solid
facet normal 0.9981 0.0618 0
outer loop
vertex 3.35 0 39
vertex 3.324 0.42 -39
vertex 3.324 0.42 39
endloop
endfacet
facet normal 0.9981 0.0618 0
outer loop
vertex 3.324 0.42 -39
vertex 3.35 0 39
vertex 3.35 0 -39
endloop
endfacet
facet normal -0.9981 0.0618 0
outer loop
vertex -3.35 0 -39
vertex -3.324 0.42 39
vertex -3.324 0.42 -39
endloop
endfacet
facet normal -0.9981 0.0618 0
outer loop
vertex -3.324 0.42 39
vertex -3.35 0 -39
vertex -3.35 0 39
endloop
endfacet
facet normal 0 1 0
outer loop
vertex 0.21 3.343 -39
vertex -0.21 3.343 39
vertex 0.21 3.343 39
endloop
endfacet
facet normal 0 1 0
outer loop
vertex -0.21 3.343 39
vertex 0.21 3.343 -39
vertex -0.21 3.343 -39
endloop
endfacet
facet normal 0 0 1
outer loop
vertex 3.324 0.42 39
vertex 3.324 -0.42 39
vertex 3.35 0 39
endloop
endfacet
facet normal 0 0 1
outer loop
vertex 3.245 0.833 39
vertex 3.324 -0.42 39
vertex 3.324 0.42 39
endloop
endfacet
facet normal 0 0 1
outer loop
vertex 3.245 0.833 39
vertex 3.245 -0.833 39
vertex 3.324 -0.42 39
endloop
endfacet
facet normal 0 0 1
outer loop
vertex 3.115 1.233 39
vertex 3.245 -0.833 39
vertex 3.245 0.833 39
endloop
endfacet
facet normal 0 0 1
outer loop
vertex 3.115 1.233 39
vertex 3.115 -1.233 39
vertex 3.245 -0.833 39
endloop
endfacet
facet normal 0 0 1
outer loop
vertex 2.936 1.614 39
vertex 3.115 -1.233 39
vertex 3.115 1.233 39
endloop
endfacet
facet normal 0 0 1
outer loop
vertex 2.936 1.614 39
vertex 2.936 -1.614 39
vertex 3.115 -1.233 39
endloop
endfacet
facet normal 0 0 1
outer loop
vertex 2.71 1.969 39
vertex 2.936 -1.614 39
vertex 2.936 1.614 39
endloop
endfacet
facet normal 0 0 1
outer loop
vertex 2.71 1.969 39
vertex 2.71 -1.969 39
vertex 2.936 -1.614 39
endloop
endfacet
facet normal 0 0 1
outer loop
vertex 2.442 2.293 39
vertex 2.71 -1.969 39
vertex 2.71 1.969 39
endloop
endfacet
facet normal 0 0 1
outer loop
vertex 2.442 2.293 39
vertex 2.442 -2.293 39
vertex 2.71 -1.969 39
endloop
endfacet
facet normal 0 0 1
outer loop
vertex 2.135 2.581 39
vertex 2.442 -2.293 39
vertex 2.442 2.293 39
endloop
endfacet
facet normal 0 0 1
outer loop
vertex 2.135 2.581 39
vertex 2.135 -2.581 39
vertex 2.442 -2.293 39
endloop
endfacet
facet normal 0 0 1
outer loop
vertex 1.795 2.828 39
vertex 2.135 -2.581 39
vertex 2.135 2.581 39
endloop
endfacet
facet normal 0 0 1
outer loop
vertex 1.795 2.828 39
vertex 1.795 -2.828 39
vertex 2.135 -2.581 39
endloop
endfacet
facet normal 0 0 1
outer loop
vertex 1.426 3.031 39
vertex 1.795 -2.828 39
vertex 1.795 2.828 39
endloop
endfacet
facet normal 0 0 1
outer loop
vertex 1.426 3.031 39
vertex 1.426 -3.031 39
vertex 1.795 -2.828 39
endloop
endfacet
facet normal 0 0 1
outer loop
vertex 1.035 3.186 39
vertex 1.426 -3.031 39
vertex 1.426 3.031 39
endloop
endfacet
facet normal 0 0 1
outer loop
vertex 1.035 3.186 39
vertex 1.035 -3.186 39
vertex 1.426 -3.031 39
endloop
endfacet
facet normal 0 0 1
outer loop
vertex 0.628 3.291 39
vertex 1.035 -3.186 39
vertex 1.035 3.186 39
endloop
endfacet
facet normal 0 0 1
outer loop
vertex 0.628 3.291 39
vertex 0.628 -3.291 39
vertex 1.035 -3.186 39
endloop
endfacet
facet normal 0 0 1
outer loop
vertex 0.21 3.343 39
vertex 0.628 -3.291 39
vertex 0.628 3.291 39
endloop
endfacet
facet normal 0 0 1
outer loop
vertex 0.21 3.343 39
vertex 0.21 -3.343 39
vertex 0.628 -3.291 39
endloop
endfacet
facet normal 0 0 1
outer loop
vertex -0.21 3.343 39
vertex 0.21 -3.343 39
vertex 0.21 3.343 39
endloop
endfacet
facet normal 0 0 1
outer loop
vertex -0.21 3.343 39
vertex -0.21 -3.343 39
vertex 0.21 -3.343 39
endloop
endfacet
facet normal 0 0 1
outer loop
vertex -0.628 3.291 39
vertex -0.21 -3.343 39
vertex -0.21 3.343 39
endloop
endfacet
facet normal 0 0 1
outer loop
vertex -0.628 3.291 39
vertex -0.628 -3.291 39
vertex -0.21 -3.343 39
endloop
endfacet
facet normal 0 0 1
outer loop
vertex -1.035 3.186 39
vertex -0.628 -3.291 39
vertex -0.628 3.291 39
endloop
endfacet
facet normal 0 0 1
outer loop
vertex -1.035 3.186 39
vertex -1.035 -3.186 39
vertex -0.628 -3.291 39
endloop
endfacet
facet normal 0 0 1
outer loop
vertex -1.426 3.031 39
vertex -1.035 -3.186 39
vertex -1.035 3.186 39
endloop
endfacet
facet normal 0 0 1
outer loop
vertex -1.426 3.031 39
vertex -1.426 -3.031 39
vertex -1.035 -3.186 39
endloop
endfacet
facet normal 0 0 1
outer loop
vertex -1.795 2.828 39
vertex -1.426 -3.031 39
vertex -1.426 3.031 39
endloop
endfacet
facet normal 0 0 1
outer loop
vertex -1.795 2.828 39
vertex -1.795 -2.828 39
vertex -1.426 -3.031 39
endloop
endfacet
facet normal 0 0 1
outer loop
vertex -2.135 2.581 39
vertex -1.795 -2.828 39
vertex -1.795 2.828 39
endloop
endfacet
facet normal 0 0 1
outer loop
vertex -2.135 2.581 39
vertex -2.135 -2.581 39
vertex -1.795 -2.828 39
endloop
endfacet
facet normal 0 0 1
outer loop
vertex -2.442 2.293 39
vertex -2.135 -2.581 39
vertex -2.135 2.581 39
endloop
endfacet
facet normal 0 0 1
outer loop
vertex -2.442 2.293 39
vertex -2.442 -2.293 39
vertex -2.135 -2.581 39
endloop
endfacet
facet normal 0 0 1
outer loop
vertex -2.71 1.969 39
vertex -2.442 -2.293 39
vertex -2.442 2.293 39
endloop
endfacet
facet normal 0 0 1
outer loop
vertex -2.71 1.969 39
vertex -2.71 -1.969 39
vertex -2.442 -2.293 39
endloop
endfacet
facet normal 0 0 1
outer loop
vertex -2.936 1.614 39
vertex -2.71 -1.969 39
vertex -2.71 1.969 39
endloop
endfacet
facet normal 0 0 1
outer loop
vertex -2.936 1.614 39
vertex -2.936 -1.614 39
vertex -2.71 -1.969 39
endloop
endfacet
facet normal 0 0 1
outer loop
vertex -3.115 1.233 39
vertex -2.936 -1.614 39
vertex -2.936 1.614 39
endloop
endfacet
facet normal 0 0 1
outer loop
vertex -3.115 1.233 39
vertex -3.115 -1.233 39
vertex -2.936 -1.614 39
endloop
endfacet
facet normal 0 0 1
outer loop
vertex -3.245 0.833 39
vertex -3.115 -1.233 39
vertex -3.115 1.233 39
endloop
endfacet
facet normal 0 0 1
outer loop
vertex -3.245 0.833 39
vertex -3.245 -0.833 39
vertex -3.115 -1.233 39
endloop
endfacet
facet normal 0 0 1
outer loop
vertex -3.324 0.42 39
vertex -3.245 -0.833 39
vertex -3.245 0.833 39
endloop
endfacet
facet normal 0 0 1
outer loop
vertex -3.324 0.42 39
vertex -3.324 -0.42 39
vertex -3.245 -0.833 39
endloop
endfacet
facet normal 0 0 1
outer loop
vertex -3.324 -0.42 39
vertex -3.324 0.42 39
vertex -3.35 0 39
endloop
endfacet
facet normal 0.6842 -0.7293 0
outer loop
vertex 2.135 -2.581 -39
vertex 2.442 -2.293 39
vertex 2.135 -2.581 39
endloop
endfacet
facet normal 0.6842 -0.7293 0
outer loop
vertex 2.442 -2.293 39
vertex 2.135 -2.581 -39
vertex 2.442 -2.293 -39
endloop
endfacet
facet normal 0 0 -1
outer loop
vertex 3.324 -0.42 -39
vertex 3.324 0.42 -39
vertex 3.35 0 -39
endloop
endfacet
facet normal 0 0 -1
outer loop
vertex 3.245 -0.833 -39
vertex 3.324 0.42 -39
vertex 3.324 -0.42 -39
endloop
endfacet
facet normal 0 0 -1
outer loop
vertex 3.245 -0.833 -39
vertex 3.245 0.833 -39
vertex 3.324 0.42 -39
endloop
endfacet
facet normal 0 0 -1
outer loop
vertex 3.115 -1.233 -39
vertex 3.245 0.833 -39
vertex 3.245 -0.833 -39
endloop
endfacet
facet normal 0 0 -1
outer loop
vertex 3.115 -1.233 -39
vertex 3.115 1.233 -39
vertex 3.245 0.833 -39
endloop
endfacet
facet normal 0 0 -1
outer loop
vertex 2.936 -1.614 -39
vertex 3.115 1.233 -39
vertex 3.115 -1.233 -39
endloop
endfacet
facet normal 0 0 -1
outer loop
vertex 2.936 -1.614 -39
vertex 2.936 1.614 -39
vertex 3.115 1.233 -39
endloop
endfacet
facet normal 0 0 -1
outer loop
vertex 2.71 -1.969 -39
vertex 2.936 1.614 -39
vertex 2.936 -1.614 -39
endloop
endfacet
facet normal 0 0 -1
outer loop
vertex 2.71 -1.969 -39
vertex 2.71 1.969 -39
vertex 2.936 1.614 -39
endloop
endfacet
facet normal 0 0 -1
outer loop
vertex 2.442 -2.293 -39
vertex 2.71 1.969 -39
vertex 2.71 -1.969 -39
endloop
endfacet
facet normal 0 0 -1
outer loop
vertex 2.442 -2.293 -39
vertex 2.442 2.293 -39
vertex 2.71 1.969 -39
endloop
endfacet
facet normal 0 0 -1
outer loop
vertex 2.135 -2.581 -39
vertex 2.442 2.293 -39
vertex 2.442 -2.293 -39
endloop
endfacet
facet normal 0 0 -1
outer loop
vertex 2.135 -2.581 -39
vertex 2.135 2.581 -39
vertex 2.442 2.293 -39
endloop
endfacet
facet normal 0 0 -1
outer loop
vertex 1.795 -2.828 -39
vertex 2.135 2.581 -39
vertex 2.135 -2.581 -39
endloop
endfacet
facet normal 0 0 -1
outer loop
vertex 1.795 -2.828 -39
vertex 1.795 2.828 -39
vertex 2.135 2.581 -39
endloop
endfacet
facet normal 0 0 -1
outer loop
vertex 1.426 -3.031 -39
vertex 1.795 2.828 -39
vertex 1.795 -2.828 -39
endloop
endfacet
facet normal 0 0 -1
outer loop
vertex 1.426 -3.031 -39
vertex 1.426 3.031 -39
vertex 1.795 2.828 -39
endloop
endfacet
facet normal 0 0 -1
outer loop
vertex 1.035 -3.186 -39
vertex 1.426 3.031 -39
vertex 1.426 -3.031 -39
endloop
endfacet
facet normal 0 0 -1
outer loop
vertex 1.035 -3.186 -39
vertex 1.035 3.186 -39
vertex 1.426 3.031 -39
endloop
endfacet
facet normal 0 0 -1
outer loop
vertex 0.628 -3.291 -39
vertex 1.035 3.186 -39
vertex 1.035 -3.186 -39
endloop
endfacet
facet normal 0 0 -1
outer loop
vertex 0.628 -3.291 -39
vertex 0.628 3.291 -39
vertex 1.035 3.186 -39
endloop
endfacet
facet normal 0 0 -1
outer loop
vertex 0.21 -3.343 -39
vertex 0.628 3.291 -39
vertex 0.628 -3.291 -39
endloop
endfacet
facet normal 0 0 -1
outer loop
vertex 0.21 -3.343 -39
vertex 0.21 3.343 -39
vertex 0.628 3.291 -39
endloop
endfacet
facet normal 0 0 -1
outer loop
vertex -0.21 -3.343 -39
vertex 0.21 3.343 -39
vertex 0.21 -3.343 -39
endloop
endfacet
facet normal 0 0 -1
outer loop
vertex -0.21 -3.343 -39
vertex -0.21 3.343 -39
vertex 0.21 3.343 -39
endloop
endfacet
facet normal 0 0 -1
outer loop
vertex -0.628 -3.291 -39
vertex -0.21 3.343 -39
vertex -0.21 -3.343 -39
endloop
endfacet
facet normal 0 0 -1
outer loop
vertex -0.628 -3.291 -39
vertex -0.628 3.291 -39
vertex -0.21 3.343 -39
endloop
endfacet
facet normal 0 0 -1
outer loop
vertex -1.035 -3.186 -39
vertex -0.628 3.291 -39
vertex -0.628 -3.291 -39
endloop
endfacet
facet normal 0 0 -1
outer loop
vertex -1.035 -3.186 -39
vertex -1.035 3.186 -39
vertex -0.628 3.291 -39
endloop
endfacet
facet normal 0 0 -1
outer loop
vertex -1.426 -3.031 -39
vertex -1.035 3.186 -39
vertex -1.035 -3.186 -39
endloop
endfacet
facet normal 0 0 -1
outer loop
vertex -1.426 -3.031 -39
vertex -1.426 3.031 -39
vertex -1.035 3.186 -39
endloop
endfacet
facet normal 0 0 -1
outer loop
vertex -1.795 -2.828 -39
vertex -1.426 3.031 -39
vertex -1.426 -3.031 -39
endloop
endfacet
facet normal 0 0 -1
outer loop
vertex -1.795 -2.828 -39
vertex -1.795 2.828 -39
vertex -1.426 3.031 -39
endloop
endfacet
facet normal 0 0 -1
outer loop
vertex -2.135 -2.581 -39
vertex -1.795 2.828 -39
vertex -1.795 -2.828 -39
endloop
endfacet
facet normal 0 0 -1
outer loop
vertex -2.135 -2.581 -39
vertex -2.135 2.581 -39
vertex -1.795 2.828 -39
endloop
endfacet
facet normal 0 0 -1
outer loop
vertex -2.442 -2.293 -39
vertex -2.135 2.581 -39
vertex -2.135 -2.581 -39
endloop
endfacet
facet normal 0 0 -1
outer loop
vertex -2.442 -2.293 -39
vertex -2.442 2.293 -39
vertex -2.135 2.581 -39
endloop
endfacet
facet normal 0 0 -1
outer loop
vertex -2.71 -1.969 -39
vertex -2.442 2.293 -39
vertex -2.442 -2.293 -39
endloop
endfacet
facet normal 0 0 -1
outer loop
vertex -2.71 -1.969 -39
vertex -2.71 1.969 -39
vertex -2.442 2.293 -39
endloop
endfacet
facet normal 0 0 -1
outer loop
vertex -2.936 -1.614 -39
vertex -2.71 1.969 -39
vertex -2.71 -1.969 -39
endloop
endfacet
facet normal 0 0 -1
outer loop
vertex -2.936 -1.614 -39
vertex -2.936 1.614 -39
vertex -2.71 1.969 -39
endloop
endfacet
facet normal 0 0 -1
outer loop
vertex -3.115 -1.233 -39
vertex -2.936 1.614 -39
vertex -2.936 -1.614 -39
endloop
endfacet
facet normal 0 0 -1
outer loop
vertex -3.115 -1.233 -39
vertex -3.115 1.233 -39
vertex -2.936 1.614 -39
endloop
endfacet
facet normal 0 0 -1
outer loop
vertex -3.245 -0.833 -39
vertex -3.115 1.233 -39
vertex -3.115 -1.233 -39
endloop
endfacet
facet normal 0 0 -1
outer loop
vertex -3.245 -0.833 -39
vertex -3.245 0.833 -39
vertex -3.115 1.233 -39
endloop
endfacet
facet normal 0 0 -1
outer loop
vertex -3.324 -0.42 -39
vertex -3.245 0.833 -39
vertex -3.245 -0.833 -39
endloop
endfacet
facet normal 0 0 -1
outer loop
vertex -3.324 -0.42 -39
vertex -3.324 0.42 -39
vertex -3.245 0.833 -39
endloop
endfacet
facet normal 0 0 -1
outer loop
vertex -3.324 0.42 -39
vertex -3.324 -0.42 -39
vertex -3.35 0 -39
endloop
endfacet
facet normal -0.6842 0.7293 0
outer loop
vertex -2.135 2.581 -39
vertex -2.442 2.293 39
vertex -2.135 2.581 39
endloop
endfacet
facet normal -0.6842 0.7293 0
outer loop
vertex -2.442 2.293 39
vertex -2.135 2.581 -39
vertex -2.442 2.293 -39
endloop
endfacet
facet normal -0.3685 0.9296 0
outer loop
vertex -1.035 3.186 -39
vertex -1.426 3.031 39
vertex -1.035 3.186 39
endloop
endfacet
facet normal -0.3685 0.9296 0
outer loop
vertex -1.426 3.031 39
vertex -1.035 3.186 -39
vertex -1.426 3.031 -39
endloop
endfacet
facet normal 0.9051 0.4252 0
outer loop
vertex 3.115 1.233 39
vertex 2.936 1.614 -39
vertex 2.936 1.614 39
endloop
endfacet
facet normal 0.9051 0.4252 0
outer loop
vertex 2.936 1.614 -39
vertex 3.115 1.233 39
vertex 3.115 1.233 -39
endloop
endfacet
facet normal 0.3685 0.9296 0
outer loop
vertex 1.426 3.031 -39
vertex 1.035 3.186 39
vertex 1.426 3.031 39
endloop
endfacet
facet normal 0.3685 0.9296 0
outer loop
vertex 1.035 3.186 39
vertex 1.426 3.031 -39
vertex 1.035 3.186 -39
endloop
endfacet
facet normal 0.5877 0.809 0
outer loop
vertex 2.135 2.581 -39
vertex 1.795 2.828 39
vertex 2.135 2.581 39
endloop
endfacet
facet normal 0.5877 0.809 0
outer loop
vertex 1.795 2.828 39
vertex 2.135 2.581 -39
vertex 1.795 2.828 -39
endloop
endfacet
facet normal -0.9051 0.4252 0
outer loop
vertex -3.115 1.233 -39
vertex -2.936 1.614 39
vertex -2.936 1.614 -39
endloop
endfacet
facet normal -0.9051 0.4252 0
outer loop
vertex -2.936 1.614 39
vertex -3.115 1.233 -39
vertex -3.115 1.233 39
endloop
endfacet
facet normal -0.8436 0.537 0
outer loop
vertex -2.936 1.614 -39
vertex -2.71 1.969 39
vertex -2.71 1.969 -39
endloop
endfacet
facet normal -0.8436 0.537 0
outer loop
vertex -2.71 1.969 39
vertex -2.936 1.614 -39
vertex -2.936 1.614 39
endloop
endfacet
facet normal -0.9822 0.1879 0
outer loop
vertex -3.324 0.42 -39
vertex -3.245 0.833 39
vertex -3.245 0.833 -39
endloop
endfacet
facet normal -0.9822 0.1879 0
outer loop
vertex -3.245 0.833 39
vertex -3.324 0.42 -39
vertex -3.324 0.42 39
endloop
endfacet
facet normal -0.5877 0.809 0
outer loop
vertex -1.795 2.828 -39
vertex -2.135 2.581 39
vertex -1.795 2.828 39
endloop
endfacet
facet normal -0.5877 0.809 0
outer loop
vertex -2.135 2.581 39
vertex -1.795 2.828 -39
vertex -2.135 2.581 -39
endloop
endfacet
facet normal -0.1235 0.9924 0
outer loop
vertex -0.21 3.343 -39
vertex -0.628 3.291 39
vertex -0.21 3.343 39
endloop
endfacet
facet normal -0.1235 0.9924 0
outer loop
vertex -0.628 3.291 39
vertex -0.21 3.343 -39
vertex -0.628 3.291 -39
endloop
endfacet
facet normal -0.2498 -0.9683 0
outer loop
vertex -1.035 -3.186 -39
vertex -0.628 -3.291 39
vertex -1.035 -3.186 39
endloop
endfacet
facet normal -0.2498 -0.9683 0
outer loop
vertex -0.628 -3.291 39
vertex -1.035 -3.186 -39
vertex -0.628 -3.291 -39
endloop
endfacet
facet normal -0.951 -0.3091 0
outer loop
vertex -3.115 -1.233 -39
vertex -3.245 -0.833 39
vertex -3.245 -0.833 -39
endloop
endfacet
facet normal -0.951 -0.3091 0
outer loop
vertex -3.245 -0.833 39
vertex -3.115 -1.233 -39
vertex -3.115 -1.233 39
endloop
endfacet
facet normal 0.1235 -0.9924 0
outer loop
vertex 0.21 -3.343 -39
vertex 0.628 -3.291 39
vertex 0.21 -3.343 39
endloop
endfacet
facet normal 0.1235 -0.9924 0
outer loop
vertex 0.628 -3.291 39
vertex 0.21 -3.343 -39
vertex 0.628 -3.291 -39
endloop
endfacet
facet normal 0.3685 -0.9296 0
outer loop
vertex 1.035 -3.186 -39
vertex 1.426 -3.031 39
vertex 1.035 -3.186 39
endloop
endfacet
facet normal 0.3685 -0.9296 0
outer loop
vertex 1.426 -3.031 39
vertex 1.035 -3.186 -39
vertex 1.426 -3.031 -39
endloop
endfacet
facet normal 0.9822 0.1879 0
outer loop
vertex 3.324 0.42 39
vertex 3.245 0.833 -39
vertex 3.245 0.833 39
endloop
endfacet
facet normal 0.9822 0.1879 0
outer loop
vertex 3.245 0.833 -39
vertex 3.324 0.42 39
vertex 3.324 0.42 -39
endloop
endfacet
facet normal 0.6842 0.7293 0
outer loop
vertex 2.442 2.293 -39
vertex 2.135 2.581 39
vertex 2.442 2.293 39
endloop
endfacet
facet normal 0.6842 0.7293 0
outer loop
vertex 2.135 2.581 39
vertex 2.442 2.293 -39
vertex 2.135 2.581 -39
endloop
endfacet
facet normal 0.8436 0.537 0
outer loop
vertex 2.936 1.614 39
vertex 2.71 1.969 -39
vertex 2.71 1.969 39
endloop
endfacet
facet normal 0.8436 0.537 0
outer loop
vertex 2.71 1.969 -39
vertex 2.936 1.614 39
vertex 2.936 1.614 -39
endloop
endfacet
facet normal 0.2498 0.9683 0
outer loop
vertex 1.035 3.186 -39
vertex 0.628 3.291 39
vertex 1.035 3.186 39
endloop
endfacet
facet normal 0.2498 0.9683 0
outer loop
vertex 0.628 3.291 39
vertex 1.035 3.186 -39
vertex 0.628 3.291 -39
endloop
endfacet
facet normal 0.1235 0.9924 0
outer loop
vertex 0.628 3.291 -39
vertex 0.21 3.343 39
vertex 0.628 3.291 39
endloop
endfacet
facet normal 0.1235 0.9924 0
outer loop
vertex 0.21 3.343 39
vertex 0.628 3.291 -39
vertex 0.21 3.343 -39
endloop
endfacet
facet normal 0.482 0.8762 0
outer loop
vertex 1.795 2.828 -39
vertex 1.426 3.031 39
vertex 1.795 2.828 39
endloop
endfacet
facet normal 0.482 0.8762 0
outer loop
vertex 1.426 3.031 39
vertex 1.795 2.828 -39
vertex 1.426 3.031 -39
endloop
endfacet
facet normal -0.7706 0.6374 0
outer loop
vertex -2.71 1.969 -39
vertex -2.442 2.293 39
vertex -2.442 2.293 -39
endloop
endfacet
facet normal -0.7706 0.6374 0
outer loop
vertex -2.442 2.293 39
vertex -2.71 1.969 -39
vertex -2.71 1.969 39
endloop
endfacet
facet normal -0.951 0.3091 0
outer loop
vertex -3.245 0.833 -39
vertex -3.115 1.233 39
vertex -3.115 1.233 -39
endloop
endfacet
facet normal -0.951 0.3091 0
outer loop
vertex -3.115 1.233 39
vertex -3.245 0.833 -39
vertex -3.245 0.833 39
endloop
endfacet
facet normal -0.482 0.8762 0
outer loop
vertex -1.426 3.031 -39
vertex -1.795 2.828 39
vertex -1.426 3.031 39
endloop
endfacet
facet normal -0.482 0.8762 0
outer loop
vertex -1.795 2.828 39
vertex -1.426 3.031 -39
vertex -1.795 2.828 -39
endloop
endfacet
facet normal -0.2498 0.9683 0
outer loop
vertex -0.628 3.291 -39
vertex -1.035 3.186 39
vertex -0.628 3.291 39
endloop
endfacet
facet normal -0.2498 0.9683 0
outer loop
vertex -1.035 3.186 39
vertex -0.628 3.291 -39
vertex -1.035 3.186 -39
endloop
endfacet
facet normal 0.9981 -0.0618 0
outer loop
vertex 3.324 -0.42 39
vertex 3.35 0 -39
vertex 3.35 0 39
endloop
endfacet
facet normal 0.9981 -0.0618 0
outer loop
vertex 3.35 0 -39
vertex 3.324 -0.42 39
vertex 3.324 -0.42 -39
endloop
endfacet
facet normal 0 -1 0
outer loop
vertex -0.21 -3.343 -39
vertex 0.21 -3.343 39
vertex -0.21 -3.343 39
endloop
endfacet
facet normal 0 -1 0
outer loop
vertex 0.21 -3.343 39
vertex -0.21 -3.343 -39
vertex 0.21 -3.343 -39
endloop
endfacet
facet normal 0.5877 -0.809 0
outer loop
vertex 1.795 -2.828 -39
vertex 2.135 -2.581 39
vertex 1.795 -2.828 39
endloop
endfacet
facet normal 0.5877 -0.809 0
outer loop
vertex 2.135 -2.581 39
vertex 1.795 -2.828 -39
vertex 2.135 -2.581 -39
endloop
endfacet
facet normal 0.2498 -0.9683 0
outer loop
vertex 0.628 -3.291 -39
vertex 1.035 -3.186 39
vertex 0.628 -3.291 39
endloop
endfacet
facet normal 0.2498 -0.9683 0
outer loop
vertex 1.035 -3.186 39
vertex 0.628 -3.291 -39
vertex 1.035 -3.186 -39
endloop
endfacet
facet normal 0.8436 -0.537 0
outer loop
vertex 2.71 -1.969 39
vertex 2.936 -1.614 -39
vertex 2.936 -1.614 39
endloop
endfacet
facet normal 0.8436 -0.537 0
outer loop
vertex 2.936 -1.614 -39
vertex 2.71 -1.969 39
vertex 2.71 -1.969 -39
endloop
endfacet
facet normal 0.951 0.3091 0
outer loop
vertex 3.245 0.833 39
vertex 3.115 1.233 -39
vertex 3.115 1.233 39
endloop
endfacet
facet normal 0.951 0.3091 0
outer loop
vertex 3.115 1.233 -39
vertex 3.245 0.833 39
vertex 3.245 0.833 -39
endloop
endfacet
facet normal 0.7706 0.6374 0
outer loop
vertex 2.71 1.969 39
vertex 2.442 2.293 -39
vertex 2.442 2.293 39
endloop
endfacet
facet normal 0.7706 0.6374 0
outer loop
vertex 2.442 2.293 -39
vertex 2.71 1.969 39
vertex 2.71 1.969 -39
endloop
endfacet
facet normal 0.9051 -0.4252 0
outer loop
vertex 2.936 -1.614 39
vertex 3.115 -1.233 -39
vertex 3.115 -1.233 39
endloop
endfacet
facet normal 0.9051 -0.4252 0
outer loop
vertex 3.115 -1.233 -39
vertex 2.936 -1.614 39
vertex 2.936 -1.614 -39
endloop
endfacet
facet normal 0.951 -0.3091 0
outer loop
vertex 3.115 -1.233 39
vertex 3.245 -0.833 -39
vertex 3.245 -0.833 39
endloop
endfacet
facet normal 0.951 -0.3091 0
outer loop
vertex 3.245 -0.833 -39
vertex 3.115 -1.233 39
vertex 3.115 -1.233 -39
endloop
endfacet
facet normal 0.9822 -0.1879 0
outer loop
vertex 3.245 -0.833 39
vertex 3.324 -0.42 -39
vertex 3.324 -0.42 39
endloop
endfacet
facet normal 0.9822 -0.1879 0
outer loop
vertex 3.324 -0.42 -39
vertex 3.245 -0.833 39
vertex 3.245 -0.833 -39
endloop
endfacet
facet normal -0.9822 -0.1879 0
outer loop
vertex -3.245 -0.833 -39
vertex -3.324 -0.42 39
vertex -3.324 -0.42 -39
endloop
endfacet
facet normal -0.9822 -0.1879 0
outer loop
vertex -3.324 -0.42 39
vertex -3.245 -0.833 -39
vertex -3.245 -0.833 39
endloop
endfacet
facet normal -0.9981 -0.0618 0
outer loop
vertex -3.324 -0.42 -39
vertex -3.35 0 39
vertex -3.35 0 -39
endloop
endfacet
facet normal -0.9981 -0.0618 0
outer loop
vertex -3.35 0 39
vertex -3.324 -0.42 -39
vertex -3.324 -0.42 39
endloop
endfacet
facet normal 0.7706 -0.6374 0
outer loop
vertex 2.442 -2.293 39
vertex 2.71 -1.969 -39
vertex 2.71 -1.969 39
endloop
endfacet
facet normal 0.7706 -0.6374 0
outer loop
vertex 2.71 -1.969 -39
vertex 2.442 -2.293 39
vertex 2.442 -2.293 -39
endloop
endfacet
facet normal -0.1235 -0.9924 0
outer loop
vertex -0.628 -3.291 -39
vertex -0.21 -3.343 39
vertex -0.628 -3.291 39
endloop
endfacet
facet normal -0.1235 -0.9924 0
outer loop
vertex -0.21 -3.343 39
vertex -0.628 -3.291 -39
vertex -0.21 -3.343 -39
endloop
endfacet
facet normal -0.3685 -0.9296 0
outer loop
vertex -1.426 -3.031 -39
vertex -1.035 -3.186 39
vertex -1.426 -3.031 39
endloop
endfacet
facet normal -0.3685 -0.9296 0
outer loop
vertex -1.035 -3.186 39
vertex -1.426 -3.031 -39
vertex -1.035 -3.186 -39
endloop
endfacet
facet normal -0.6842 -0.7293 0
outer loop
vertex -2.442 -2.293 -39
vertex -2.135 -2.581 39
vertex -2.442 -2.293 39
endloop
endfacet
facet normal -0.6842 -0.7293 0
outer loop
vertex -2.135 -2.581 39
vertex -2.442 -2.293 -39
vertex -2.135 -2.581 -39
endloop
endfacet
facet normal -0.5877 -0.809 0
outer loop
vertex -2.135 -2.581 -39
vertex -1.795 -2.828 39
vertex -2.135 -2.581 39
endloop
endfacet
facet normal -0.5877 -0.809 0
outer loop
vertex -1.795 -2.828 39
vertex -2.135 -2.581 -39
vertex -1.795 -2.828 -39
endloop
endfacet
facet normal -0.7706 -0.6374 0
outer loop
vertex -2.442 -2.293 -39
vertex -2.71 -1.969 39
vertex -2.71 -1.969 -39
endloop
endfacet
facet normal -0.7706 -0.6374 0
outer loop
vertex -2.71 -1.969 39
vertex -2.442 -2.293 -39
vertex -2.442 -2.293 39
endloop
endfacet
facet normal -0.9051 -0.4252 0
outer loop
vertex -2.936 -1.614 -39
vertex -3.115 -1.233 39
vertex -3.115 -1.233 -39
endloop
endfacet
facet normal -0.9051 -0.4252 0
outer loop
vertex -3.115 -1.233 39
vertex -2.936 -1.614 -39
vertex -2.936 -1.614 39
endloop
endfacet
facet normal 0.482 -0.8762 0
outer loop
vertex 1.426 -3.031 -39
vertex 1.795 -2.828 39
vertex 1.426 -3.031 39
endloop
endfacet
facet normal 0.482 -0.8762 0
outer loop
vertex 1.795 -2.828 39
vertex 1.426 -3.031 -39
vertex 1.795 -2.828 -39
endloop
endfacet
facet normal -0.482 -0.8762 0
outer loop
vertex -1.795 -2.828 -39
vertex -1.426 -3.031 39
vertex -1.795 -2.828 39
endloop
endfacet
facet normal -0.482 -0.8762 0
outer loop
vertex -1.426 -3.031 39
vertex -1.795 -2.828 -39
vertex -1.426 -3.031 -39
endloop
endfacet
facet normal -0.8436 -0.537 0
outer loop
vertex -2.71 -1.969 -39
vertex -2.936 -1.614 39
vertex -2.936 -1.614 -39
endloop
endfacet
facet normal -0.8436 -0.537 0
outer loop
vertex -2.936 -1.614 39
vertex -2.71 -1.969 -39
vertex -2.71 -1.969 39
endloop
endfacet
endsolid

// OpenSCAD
$fn = 50;


difference() {
	union() {
		translate(v = [0, 0, -39.0000000000]) {
			cylinder(h = 78, r = 3.3500000000);
		}
	}
	union() {
		translate(v = [0, 0, -100.0000000000]) {
			cylinder(h = 200, r = 0);
		}
	}
}
